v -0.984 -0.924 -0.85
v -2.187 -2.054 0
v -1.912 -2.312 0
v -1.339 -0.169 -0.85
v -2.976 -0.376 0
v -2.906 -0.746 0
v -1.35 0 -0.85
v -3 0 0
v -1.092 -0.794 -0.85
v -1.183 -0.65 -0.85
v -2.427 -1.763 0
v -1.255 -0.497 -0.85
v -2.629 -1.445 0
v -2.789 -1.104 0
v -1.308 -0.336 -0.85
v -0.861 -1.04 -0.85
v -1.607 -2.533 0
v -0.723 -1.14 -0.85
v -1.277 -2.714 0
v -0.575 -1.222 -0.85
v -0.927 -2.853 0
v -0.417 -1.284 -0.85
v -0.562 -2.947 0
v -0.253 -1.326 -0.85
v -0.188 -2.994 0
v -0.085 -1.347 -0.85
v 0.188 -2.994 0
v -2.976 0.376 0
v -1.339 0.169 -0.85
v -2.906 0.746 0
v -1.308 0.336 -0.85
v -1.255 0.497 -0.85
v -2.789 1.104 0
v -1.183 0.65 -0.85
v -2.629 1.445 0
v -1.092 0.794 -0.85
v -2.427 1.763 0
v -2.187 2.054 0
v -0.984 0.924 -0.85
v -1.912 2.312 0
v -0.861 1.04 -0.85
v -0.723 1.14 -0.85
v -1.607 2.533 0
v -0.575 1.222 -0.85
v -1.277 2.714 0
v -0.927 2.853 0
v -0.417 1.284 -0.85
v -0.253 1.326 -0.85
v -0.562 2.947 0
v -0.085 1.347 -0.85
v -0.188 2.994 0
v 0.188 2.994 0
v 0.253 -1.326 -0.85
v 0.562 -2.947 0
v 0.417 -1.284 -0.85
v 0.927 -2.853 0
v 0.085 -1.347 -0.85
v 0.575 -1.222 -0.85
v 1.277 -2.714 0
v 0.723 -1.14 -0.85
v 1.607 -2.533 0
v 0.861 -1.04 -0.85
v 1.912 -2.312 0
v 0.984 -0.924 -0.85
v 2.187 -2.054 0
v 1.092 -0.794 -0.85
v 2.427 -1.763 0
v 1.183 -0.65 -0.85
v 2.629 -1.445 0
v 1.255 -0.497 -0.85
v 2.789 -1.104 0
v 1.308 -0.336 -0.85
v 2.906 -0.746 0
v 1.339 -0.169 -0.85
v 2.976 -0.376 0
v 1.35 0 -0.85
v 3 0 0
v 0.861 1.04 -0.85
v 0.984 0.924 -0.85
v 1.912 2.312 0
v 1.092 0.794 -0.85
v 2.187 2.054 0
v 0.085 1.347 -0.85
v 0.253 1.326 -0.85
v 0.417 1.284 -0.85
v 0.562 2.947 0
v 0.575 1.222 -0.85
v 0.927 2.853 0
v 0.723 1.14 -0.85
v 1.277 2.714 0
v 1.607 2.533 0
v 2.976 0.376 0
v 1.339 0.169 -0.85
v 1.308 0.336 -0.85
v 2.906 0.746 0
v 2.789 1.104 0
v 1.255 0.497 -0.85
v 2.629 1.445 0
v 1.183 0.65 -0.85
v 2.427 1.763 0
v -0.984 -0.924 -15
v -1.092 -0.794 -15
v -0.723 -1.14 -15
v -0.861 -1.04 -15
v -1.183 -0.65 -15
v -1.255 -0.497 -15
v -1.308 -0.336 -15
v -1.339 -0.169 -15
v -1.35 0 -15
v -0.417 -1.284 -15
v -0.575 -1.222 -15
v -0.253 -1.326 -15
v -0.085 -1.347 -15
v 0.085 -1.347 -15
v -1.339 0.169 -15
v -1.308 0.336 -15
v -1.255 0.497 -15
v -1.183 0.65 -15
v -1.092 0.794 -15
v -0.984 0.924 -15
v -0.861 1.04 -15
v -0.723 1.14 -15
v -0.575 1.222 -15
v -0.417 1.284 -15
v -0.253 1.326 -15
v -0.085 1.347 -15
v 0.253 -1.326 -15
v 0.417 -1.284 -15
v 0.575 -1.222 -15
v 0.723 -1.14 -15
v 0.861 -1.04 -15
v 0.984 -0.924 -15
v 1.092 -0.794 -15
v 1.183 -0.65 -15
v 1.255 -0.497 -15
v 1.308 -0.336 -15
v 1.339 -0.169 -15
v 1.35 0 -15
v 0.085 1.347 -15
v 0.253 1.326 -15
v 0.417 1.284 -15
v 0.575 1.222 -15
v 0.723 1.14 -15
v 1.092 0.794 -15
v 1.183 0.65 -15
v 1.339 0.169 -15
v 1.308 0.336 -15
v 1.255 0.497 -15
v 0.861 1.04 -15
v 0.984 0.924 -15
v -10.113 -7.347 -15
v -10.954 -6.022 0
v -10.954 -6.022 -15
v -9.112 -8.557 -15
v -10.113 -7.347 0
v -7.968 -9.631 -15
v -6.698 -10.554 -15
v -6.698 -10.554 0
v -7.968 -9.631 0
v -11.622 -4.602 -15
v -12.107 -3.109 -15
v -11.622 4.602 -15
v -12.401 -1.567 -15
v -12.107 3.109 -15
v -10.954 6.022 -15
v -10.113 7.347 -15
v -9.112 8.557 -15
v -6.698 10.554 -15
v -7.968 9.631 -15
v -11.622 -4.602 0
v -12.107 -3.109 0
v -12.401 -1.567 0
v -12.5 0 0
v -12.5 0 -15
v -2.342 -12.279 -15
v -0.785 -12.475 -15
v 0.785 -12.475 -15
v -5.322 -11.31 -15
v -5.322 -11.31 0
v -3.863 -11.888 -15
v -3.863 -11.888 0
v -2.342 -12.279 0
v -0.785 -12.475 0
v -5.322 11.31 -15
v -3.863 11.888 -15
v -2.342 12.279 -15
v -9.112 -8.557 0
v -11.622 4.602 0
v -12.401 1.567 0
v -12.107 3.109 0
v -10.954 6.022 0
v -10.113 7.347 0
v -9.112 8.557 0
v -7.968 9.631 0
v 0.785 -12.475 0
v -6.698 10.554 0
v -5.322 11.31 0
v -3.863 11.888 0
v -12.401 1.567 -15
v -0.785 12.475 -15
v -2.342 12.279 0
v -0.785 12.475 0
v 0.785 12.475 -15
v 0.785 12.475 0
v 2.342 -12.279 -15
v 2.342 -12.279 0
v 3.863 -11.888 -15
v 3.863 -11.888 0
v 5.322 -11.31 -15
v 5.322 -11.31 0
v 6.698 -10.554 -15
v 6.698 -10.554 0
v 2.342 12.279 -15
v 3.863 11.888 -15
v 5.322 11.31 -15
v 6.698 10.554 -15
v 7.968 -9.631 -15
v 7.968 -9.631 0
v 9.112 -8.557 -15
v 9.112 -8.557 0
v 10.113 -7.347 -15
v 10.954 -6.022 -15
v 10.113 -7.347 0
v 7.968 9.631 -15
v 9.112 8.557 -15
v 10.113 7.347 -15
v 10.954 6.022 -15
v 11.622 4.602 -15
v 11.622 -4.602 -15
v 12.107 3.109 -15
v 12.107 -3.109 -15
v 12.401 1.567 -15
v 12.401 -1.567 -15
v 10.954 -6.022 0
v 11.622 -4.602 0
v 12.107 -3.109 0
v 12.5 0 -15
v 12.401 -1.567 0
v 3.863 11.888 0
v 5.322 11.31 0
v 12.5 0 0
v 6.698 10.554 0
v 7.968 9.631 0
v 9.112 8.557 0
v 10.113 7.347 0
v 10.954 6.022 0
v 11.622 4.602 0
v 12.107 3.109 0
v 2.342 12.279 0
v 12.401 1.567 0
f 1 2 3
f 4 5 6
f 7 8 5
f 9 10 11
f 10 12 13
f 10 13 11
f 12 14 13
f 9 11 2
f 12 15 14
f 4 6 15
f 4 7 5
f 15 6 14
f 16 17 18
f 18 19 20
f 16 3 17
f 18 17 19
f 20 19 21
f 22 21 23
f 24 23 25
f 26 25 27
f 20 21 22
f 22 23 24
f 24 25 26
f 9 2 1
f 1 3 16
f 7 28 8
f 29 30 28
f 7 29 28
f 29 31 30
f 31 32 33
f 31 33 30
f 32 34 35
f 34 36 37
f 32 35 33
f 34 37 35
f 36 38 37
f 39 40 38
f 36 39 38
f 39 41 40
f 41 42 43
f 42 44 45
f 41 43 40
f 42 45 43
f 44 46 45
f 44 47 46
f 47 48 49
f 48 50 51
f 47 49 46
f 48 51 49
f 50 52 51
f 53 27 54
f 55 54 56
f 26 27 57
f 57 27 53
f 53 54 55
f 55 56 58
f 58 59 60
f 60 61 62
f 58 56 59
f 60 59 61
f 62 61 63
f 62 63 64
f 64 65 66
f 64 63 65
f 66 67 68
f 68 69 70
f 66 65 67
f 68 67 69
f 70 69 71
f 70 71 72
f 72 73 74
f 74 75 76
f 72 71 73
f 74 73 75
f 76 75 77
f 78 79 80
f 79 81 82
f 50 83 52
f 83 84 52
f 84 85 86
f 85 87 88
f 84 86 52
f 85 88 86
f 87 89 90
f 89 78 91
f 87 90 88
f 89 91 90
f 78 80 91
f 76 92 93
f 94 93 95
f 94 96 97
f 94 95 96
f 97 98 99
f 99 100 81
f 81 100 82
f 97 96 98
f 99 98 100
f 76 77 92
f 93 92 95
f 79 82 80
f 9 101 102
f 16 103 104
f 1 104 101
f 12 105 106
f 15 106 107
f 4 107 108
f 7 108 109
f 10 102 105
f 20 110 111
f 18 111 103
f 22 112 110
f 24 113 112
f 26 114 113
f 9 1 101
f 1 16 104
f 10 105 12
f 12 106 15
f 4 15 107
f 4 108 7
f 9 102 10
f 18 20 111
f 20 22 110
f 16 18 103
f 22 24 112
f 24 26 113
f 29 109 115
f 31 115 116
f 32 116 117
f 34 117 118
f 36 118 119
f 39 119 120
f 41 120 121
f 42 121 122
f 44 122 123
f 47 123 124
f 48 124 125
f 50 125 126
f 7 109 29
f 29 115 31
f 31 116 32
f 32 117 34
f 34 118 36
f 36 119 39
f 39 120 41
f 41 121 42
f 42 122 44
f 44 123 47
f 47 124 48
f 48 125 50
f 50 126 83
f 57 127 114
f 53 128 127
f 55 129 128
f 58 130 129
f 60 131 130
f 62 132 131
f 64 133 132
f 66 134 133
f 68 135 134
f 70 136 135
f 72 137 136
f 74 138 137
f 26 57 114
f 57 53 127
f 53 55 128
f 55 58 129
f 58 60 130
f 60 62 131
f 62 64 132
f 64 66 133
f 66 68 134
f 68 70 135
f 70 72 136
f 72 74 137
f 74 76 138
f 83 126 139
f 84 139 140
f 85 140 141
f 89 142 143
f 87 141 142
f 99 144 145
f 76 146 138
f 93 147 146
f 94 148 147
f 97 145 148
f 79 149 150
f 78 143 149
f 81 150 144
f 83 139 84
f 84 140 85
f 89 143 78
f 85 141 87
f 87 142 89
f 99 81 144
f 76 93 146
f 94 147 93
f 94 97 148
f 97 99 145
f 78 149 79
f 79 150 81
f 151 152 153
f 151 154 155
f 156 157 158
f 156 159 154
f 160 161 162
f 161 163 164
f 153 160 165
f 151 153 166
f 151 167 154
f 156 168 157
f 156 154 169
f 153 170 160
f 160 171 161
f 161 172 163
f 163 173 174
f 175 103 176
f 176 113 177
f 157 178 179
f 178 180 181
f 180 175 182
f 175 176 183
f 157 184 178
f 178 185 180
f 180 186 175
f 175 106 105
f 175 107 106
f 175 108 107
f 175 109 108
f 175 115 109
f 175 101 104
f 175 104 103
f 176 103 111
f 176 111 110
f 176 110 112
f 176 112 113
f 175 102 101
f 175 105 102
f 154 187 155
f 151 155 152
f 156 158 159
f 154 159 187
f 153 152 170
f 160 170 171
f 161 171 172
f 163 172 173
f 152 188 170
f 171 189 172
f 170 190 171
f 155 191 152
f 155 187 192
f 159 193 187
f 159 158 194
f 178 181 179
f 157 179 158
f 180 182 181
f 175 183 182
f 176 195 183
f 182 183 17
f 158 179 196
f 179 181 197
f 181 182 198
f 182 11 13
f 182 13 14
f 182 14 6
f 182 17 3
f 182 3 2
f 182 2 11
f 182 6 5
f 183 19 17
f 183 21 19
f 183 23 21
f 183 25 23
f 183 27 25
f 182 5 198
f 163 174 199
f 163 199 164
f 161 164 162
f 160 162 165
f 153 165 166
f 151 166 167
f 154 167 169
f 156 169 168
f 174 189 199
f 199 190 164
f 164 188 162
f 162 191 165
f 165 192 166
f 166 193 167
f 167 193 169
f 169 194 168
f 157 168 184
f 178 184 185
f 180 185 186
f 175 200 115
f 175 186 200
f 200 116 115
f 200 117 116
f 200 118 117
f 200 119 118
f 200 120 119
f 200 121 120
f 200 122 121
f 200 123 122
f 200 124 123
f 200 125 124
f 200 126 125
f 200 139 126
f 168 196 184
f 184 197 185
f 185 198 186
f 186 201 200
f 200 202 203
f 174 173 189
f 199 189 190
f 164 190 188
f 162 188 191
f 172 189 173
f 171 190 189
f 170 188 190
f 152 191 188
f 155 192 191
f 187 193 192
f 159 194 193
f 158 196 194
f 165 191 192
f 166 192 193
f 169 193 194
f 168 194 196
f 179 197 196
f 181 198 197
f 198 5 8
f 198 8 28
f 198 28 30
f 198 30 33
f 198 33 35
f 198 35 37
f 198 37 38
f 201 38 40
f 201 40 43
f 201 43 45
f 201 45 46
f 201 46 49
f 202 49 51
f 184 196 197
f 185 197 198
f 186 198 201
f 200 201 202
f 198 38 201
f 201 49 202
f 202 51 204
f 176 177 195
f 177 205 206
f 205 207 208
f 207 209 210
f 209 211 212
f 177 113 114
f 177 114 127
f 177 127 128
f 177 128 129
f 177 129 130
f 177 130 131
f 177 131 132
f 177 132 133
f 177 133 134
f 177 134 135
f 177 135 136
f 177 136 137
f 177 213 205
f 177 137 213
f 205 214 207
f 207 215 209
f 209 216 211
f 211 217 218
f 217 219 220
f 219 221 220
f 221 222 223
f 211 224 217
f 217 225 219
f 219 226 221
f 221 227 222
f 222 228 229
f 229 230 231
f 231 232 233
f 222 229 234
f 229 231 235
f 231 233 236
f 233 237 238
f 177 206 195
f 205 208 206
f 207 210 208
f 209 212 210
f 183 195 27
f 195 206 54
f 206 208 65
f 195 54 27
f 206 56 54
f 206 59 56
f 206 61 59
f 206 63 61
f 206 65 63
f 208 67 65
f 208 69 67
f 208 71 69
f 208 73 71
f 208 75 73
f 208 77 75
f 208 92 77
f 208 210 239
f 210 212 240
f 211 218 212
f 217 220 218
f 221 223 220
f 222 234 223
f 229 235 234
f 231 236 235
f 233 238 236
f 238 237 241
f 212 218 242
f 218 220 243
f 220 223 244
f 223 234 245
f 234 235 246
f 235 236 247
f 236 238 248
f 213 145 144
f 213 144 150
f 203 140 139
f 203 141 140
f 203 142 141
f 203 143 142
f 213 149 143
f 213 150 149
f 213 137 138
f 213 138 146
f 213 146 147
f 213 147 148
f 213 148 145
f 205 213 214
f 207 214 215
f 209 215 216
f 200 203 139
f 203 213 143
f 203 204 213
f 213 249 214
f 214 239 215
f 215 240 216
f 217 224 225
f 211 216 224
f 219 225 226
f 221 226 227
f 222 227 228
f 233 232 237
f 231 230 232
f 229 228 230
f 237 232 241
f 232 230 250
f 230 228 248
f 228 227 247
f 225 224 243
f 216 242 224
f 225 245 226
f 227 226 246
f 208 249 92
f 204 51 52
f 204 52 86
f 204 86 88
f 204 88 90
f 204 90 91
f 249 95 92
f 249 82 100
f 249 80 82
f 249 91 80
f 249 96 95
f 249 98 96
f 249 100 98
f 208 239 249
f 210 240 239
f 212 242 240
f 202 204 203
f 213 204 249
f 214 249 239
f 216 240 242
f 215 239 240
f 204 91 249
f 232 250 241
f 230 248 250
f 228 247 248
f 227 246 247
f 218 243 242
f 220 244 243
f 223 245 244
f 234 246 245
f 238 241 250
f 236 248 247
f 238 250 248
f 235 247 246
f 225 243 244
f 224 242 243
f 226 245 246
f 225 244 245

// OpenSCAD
$fn = 50;


difference() {
	union() {
		translate(v = [0, 0, -15.0000000000]) {
			cylinder(h = 15, r = 12.5000000000);
		}
	}
	union() {
		translate(v = [0, 0, 0]) {
			rotate(a = [0, 0, 0]) {
				difference() {
					union() {
						translate(v = [0, 0, -18.0000000000]) {
							cylinder(h = 18, r = 1.0000000000);
						}
						translate(v = [0, 0, -0.8500000000]) {
							cylinder(h = 0.8500000000, r1 = 1.3500000000, r2 = 3.0000000000);
						}
						translate(v = [0, 0, -18.0000000000]) {
							cylinder(h = 18, r = 1.3500000000);
						}
						translate(v = [0, 0, -18.0000000000]) {
							cylinder(h = 18, r = 1.0000000000);
						}
					}
					union();
				}
			}
		}
	}
}
